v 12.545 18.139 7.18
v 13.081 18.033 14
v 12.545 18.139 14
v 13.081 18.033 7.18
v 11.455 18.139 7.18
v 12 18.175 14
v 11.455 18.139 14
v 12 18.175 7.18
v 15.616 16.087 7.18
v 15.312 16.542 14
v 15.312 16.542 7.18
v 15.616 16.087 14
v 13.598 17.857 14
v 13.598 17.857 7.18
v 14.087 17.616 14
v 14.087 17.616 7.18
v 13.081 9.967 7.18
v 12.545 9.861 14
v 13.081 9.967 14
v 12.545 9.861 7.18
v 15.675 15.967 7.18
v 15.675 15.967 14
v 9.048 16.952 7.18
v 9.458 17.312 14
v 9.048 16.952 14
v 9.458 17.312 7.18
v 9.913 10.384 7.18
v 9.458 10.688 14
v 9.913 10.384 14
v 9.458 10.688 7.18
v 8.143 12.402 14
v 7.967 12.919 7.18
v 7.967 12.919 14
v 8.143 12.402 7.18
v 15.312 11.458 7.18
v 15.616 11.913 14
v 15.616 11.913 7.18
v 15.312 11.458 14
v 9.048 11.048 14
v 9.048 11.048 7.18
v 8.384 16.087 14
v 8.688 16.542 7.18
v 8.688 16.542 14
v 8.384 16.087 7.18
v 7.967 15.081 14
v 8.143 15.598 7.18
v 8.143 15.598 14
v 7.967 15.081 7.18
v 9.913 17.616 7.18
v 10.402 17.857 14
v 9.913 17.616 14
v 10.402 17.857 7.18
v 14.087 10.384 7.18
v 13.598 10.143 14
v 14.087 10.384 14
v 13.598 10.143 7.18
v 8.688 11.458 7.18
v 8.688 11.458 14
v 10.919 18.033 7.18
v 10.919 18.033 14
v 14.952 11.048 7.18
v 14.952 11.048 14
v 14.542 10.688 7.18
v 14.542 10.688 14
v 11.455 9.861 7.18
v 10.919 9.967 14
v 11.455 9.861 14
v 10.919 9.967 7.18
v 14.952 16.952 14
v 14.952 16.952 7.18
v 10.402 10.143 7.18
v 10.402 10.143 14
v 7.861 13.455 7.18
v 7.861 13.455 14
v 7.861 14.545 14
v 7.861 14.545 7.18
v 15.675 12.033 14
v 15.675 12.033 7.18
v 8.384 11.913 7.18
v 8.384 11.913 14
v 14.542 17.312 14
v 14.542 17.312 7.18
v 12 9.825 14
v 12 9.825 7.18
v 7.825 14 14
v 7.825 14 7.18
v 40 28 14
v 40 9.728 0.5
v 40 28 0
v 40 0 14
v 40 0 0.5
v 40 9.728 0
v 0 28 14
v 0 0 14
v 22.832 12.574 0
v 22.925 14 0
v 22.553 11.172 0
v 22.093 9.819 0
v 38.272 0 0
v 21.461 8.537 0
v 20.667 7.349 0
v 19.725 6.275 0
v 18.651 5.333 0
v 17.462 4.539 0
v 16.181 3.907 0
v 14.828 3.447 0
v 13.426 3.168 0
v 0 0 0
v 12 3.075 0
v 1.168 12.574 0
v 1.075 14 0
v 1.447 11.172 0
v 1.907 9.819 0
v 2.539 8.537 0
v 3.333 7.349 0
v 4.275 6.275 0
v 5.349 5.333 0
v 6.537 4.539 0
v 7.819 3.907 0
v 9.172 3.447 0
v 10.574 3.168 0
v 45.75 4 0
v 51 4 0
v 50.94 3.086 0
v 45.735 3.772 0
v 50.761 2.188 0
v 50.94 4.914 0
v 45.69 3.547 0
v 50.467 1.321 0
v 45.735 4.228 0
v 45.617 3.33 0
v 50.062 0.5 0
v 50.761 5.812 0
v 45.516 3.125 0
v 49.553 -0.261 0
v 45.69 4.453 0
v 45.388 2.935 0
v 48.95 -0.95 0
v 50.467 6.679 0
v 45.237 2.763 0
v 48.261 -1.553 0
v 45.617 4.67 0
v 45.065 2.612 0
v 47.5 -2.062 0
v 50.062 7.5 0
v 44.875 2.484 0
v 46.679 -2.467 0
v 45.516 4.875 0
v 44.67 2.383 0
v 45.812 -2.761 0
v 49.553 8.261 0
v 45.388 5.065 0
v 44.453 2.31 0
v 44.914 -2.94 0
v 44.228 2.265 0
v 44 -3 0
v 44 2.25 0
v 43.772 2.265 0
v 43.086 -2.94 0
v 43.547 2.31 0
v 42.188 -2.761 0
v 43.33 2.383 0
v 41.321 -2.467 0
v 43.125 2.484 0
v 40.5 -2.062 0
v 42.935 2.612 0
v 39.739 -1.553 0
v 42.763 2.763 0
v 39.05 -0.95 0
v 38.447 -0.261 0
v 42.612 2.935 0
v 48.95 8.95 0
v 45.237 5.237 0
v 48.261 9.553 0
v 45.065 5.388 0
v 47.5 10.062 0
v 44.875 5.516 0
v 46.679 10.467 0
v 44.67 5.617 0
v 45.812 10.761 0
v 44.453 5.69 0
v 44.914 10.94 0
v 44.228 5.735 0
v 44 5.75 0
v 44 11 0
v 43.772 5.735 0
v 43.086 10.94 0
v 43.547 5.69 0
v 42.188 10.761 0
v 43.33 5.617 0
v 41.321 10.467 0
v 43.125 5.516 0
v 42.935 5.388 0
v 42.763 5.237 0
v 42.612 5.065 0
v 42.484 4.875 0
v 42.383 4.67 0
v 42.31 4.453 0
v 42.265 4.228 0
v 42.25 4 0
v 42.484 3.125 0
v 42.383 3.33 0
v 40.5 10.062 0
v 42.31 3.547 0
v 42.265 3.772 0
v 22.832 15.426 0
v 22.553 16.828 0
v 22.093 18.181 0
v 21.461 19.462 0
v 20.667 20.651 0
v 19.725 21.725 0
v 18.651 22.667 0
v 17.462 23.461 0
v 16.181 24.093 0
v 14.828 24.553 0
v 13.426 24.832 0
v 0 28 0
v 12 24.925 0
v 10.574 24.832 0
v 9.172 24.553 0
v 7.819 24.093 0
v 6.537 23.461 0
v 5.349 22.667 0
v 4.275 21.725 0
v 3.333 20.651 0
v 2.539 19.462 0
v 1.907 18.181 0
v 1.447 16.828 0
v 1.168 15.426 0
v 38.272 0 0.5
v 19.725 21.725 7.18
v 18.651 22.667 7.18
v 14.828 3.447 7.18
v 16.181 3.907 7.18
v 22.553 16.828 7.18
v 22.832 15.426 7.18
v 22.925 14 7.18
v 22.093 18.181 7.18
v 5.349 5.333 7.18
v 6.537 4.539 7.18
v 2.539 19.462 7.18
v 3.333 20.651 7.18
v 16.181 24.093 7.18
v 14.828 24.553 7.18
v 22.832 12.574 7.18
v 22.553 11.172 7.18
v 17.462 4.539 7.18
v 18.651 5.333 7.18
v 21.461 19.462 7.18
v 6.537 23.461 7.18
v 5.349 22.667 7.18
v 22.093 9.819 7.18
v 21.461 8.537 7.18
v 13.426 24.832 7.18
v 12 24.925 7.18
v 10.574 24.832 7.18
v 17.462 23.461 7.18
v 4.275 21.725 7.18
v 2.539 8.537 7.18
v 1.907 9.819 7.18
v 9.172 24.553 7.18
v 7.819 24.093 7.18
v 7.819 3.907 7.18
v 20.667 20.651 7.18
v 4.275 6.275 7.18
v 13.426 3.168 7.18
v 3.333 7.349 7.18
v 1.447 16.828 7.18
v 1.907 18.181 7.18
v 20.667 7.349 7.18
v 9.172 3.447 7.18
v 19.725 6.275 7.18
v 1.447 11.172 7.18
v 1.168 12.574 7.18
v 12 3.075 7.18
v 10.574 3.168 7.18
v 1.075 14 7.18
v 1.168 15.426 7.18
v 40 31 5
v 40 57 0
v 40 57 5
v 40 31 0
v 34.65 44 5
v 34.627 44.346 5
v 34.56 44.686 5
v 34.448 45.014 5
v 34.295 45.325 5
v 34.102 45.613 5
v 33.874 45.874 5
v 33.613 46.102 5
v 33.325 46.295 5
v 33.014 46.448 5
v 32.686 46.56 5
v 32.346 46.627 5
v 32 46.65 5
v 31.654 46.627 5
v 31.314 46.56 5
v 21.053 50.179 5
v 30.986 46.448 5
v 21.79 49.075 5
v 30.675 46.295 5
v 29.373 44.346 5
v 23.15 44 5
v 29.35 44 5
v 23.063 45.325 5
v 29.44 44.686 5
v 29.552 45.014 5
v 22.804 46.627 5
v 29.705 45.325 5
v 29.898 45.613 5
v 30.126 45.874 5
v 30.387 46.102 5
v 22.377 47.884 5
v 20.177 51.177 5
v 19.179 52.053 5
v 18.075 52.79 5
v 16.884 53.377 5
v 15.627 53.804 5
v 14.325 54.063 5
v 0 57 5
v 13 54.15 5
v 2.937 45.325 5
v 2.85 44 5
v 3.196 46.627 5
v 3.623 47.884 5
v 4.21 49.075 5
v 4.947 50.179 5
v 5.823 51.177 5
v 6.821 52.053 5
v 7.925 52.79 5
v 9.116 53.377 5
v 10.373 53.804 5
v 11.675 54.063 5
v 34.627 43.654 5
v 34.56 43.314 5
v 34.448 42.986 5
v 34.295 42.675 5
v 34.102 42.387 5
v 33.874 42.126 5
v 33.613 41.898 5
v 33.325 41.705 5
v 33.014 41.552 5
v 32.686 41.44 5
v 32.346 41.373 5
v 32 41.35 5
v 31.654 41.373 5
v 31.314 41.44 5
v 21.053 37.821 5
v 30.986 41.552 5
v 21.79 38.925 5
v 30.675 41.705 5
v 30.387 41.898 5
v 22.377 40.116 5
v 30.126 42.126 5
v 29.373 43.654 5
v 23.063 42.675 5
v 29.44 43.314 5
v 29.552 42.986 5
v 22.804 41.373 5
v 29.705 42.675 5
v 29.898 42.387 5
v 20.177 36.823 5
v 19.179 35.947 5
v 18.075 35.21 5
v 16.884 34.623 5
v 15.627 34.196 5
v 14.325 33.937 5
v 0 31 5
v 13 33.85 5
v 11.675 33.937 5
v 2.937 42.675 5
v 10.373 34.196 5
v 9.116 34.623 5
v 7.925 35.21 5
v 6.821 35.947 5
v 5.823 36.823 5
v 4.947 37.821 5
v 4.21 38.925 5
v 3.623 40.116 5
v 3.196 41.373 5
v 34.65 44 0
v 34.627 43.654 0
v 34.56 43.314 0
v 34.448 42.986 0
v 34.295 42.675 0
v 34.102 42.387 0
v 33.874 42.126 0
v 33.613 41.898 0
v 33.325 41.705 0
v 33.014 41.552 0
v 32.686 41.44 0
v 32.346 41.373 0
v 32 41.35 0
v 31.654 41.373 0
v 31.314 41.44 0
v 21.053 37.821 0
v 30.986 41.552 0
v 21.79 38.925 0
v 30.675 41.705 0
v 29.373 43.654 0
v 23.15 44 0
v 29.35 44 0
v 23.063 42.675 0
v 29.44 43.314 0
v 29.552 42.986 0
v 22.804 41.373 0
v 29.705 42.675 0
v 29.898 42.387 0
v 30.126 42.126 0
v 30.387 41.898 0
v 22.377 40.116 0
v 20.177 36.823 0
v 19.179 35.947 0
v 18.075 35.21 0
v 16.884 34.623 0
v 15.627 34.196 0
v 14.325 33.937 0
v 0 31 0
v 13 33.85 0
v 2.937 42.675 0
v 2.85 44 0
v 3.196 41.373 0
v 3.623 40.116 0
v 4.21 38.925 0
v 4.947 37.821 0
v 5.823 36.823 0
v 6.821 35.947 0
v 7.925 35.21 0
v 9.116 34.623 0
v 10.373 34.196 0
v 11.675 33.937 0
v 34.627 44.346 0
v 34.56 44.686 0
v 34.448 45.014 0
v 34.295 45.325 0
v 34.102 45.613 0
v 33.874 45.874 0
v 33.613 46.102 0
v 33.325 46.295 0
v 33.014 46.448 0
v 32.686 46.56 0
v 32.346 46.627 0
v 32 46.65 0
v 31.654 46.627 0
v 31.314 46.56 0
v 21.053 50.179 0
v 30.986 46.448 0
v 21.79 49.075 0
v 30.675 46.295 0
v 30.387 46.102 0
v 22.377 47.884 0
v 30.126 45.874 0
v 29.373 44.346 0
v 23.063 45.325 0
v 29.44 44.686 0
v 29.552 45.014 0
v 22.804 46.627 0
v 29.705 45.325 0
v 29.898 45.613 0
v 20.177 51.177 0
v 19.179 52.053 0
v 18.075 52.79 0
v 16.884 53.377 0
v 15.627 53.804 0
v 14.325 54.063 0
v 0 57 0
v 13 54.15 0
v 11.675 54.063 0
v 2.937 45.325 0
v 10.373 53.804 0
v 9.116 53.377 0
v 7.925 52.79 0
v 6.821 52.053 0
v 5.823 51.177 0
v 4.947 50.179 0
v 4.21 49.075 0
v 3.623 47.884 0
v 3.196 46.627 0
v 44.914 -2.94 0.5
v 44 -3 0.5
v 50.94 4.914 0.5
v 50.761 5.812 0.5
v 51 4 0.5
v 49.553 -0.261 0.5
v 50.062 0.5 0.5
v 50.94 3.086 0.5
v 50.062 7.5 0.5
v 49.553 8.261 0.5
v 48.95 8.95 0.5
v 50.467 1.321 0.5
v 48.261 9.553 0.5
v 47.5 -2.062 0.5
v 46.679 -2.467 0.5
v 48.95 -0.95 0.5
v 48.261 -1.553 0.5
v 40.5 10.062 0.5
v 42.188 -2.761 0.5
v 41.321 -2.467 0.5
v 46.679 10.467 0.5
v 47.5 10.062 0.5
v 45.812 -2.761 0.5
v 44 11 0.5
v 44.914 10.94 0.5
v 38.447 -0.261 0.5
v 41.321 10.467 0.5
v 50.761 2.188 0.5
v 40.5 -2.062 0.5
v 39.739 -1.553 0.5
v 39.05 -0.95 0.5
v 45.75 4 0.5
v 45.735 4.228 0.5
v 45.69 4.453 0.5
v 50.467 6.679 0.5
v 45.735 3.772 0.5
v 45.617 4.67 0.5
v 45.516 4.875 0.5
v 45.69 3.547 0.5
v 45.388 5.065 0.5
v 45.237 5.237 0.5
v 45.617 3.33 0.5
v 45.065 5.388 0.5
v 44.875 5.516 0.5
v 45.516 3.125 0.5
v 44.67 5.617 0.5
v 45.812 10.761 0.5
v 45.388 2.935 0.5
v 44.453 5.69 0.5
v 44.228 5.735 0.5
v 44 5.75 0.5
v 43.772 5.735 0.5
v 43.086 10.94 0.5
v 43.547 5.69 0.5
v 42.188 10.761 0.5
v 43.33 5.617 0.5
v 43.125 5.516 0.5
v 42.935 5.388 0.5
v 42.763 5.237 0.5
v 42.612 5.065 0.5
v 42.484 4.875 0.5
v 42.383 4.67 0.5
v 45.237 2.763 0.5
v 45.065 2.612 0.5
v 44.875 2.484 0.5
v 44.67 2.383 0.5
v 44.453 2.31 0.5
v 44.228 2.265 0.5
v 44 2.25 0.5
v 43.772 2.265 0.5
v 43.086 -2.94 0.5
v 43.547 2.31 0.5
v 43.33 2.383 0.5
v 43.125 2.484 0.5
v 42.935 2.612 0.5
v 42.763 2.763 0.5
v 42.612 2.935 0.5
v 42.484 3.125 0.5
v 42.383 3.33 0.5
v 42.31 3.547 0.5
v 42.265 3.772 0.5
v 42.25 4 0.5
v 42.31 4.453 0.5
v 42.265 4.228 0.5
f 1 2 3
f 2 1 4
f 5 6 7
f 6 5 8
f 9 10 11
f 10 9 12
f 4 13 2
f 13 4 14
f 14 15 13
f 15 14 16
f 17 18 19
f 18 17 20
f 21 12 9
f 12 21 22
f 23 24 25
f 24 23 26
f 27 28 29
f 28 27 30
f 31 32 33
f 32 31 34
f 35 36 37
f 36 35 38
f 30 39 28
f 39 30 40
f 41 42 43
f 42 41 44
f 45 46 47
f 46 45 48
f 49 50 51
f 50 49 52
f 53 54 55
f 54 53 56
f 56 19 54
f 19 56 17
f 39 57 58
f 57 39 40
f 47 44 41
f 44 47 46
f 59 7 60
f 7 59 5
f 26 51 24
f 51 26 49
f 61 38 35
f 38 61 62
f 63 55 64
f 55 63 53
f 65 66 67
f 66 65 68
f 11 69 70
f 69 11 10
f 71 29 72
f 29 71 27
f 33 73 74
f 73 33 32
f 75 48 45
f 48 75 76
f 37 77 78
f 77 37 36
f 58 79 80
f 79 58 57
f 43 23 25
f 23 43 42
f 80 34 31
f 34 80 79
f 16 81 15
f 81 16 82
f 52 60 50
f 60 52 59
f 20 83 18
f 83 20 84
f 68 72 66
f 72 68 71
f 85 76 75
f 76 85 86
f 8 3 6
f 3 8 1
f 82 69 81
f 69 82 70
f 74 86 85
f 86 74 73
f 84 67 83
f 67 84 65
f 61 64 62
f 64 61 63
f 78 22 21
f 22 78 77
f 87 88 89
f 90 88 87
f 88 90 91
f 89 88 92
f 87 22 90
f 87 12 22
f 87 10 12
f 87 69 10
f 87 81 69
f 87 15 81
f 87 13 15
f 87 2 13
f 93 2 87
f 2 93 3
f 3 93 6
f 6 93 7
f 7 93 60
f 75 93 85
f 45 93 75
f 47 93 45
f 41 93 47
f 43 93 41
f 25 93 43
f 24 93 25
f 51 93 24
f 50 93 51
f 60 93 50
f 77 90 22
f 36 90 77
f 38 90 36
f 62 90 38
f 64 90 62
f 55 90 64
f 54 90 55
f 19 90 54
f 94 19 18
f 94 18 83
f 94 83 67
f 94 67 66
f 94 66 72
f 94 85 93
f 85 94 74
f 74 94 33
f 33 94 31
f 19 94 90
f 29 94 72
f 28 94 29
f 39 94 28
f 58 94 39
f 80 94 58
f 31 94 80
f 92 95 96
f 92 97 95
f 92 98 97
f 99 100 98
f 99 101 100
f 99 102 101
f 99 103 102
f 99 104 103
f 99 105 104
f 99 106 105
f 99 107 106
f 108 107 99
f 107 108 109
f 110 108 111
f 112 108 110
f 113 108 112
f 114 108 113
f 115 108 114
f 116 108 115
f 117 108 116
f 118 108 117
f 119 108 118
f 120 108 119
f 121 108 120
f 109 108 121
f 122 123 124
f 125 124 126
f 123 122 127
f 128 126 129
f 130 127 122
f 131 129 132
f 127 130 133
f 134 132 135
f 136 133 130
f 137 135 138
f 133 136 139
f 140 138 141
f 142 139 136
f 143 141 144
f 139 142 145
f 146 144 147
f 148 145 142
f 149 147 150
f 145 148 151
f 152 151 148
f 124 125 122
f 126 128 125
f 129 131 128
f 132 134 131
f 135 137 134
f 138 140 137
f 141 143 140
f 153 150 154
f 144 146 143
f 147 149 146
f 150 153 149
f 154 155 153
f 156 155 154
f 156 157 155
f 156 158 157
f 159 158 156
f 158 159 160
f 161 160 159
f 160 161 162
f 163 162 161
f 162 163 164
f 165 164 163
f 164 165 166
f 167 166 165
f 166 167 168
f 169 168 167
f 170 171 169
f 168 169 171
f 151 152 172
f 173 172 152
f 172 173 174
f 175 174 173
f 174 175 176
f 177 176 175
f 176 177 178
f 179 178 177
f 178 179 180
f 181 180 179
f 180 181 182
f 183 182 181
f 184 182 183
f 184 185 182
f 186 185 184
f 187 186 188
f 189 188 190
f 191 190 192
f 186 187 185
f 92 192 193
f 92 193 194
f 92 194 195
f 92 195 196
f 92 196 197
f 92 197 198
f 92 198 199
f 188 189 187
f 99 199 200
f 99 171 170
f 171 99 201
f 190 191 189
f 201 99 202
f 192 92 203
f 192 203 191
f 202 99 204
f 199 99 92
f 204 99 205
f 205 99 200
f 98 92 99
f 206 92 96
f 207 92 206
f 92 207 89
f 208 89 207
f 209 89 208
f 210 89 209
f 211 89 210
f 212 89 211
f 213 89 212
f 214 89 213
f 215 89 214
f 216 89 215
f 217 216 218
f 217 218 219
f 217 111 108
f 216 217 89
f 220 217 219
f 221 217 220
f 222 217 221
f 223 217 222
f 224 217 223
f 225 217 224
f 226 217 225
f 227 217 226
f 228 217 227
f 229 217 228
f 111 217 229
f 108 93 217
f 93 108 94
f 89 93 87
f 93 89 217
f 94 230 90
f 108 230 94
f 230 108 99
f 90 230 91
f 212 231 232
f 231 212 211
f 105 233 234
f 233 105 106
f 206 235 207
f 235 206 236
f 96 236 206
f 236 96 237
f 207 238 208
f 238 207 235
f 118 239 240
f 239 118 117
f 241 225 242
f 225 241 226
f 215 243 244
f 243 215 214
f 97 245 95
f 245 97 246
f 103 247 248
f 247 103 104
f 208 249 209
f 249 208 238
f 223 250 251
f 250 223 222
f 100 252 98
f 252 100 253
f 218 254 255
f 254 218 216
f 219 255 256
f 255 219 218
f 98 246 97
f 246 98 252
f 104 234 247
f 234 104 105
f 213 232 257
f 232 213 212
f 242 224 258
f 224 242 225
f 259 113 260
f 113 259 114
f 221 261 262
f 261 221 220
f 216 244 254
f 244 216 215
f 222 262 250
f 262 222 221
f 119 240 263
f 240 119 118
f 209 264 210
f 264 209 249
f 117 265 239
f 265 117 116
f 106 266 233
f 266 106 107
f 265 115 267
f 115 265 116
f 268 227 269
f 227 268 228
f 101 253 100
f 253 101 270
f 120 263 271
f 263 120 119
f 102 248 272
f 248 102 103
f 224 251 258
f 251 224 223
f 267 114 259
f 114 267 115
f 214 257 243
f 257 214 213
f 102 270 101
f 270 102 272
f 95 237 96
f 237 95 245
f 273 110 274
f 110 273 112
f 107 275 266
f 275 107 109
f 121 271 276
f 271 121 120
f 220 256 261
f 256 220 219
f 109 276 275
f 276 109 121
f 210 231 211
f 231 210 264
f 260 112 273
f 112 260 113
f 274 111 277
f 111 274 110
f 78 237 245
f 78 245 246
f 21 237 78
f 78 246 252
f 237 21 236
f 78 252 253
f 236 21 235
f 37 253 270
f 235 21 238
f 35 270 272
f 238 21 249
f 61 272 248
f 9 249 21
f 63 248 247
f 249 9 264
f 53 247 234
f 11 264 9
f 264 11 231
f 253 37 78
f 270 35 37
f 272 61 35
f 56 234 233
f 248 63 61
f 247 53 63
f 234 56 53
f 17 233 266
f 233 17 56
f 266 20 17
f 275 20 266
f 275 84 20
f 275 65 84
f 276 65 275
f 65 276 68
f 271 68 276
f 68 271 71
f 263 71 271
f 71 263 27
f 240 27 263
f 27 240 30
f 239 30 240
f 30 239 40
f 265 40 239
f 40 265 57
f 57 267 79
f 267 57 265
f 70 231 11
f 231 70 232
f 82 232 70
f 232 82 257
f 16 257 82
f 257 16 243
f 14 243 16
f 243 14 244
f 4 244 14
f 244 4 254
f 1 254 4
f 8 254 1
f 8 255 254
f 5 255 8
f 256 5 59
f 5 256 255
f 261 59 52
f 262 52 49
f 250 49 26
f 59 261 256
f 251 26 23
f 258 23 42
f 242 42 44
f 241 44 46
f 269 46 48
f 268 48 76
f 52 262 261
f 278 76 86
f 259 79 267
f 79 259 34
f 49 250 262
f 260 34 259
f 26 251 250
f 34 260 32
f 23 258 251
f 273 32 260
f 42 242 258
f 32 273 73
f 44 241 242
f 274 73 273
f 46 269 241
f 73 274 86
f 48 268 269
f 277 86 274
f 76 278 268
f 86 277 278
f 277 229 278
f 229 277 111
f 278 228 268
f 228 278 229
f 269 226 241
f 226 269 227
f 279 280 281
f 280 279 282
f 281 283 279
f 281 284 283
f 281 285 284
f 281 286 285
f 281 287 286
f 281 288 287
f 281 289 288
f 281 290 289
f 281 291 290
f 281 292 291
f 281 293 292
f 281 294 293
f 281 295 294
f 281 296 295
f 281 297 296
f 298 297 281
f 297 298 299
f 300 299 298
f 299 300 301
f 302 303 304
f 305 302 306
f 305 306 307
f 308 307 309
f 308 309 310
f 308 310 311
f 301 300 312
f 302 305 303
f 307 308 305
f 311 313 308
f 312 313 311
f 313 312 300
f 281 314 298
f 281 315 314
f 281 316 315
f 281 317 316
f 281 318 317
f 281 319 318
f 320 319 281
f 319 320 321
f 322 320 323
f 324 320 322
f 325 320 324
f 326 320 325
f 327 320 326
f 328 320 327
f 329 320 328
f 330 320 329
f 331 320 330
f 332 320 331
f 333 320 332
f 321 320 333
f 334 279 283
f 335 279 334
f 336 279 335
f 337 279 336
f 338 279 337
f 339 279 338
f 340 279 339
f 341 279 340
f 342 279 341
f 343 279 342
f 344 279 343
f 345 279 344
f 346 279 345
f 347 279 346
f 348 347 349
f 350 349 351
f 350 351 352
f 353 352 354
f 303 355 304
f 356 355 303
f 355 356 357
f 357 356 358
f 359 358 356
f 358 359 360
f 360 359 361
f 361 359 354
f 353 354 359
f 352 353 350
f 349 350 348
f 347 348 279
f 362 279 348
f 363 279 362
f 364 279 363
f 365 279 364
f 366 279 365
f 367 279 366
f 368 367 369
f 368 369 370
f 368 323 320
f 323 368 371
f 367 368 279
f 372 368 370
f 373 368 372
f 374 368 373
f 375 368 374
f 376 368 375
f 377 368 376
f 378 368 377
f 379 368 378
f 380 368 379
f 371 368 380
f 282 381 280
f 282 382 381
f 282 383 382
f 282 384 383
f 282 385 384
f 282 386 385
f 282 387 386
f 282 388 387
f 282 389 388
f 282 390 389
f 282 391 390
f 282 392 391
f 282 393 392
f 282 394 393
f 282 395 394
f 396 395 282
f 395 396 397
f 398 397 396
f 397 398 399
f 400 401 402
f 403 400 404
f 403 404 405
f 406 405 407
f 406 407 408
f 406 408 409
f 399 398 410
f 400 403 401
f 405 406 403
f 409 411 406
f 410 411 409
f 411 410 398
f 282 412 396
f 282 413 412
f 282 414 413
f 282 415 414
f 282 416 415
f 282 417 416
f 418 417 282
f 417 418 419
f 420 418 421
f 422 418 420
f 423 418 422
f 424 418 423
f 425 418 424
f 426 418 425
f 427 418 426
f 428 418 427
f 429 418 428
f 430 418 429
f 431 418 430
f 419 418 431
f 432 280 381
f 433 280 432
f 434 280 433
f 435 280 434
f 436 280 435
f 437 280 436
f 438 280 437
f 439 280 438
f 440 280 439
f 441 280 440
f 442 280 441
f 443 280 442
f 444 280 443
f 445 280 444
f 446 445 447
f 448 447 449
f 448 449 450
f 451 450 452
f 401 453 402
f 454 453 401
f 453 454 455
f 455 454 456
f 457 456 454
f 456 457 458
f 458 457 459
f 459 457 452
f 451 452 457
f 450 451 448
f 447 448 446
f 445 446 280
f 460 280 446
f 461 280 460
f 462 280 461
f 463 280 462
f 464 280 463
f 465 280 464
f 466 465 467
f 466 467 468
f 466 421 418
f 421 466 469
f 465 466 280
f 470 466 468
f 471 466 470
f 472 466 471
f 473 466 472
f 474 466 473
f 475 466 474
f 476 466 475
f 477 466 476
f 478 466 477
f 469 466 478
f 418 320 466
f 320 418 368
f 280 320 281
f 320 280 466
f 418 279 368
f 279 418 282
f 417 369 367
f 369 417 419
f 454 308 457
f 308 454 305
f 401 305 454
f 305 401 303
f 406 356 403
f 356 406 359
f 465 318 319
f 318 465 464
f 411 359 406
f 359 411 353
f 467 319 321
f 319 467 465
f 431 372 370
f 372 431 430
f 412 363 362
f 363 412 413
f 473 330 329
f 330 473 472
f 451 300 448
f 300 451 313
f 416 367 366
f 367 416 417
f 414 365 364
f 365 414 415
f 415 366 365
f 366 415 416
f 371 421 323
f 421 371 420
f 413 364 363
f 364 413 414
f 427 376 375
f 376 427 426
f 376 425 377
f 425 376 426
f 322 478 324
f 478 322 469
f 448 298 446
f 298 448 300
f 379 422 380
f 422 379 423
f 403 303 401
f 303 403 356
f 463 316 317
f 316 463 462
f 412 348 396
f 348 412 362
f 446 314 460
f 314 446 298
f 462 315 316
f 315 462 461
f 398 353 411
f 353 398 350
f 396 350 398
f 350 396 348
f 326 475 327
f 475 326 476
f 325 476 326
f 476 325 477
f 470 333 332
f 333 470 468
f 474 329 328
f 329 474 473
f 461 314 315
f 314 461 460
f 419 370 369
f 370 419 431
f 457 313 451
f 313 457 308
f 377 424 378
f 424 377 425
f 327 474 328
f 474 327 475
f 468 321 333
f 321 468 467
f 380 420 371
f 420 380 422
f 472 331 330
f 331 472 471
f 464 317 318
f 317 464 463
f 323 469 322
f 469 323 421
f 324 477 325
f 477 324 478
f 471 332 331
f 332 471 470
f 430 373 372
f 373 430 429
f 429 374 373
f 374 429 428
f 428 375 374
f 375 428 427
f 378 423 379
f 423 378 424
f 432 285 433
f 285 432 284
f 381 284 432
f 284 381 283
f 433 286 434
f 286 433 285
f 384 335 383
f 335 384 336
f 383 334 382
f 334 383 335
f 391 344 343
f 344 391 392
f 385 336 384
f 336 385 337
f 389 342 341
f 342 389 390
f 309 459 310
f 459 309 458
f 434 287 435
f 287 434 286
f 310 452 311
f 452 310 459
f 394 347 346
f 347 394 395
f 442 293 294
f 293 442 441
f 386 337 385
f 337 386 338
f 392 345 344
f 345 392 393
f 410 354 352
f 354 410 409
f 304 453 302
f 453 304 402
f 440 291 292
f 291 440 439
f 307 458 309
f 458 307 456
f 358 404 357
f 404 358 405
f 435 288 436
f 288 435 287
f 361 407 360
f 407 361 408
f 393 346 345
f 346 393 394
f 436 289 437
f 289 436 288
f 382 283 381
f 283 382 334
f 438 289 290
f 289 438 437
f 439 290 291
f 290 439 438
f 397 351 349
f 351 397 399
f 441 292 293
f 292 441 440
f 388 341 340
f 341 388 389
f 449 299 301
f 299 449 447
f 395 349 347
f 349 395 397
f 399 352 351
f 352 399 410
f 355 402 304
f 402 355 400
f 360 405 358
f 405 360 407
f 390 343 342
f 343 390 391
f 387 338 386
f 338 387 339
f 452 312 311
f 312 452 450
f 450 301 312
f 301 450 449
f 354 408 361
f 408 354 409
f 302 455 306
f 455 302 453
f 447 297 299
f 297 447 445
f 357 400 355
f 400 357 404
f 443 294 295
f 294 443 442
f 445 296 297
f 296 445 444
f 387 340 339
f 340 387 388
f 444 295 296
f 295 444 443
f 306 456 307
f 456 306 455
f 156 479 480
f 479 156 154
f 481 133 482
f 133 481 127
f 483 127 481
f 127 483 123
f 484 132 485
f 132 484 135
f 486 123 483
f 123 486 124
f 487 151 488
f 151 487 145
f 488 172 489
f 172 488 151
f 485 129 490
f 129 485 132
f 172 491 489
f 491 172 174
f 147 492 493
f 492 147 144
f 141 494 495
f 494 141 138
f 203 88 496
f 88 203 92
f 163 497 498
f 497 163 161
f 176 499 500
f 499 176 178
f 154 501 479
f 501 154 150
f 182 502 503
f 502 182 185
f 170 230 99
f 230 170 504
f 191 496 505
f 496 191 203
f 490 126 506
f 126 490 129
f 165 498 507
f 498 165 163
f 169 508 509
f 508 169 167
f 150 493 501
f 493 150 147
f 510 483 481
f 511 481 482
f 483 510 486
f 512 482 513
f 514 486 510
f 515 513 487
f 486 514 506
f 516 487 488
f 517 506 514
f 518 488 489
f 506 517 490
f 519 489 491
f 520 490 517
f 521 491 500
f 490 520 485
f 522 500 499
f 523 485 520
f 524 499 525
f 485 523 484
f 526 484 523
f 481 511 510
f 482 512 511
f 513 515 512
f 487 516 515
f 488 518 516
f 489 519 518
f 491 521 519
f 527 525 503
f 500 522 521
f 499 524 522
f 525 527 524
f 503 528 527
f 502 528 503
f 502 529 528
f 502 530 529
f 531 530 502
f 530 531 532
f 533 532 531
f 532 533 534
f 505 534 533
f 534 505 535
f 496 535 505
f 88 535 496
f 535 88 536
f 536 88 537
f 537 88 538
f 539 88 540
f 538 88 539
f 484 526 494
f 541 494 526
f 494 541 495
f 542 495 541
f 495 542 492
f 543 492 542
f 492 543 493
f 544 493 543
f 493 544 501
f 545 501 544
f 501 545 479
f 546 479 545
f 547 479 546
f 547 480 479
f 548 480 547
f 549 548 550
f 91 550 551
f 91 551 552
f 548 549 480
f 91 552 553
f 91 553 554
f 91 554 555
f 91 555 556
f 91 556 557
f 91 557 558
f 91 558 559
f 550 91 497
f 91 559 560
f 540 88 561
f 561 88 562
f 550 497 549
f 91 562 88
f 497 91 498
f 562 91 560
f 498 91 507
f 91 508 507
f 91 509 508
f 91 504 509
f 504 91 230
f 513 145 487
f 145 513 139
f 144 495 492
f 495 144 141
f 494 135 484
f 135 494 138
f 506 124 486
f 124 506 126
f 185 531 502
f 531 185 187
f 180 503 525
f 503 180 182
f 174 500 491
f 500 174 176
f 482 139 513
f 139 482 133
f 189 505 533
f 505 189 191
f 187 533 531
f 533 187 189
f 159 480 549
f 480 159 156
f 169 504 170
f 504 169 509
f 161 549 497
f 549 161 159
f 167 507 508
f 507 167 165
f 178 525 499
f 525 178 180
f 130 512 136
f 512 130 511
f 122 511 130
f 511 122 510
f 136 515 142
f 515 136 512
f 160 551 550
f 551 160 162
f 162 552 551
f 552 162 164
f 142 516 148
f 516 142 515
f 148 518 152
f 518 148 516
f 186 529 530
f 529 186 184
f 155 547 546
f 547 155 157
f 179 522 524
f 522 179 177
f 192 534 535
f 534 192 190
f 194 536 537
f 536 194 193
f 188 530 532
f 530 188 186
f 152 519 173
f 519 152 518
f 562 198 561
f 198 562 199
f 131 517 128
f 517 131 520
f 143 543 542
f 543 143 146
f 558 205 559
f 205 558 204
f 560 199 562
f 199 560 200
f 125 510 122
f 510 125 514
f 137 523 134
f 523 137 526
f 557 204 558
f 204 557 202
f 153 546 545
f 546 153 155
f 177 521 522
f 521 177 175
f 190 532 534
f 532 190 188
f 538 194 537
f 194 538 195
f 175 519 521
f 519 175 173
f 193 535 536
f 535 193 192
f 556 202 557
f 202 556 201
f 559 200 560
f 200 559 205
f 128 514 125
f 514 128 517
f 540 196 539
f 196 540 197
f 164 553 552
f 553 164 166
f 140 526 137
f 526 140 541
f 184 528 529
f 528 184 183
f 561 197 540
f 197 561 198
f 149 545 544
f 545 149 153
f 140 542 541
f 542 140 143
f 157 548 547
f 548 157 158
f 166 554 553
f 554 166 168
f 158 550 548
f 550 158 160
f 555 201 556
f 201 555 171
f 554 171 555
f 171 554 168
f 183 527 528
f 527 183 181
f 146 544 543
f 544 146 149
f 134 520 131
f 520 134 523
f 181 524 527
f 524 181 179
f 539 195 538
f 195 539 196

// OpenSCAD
// file: parameters.scad
// =============================================================================
// Gen-CC — nightly 2026-10-13 (physics_scorer, honest magpylib watts)
// Stator-only upgrade for an existing Gen-BX: the R71 rotors and Ø168 steel stay as they are; a new annular 12-bobbin stator with 6.3 mm copper (magnet gap 9.35 → 8.90 mm) and longer r52–90 bobbins (the open-centre stator now packs one size up) replaces the old one, together with a shorter gap sleeve, frame rods moved out to R93.5 and new bearing bridges. No new magnets or steel.
// Clocking 0 deg (magnets N facing S) + D-flat keyed bore + index notch + flip-symmetric hole map.
// Windable 2-piece bobbin; turns = physics_scorer turns_fit; copper only between flanges.
// Steel back-iron: 2× Ø168 × 4.76 mm (3/16") mild-steel discs (steel_backiron_disc.dxf); magnets sit ON the steel
// (through-pockets) -> score with --back-iron. Night 2026-10-13.
// =============================================================================
topology            = "dual_rotor";

// --- Wire / winding (physics_scorer winding-fit) -------------------------------
wire_awg            = 26;
wire_od             = 0.45;     // insulated OD mm (bare 0.405)
fill_realistic      = 0.65;     // insulated-wire area / window (DENSE layered wind with a jig; scorer cap 0.65)
turns               = 391;       // = physics_scorer turns_fit (do NOT raise)
coil_former_type    = "bobbin";
coil_core_inset     = 15.20;     // radial copper build: hub = copper boundary inset by this
wind_build_axial    = 0.0;      // nothing proud of the flanges
wind_build_radial   = 0.0;

// --- Bobbin (base + lid) ---------------------------------------------------------
coil_id_r           = 52.00;    // copper boundary sector
coil_od_r           = 90.00;
span_deg            = 26.36;    // = pitch - 2*asin((wall+0.85)/coil_id_r) -> >=1.2 mm stator web
former_web          = 6.30;     // copper height between flanges (TALL copper: steel keeps Bz up)
flange_t            = 0.80;     // >= 0.8 mm FDM wall rule (tall winds push on the flanges)
wall                = 0.80;     // flange lip beyond copper
former_bare_h       = former_web + 2 * flange_t;
coil_envelope_h     = former_bare_h + 2 * wind_build_axial;
tab_w               = 7.0;
tab_len             = 7.0;
tab_h               = former_bare_h / 2;
pin_d               = 1.9;      // 1.75 mm filament locating pin
coil_mount_r        = coil_od_r + 0.2 + 4.0;
lead_y              = 1.6;
lead_slot_w         = 0.9;
lead_groove_d       = 0.6;

// --- Gap -------------------------------------------------------------------------
run_clear           = 0.50;     // rotor face -> flange
gap_spacer_h        = run_clear + wind_build_axial;
m2m                 = coil_envelope_h + 2 * run_clear;   // rotor face to rotor face (= gap_sleeve length)

// --- Stator ----------------------------------------------------------------------
coil_stations       = 12;
bay_clear           = 0.25;
stator_thick        = former_bare_h;                        // bobbins flush both faces
stator_od           = 198;
shaft_clear_stator  = 14.0;     // stator is static; gap sleeve OD 12 spins inside
stator_ir           = 46.95;    // ANNULAR stator: open centre (nested one-plate pack); inner rim 4.0 mm

// --- Rotor(s) --------------------------------------------------------------------
magnet_Br           = 1.43;     // N52
magnet_d_large      = 20.0;
magnet_h_large      = 5.0;      // one O20x5 per pocket
magnet_h_small      = 5.0;      // unused: no O5 pockets in this kit
halbach_magnetisation = "none";  // NO O5 assist magnets in this kit (scan: they lower the 4-pole score)
rotor_b_same_axis   = true;     // same-index magnets share one axis: N faces S across the gap
large_pocket_d      = 20.3;
small_pocket_d      = 5.3;
pocket_h            = 5.00;     // THROUGH the carrier: magnet back face sits on the steel disc (FLUSH seat: carrier = magnet height, magnet face level with the rotor face)
large_n             = 8;
R_large             = 71.0;
small_r_list        = [];       // no O5 pockets
carrier_od          = 168.0;
carrier_thick       = pocket_h;
hub_h               = 12.0;     // > steel_t + insert: radial set-screw clears the steel
hub_od              = 24.0;     // slim hub so the M4 brace rods fit at R~18 inside the coil ring
hub_insert_d        = 4.0;      // M3 heat-set insert, radial, bears on the D-flat
rotor_b_offset_deg  = 0.0;      // CLOCKING: magnets directly opposite
shaft_key           = "dflat";
dflat_depth         = 0.5;      // 8 mm shaft with 0.5 mm flat (7.5 across flat)
index_notch_d       = 3.0;

// --- Steel back-iron (buyable laser-cut) -------------------------------------------
steel_t             = 4.76;      // mild steel thickness (image method ignores it; sized from steel_flux.py so the return path stays well below saturation)
steel_center_hole   = 26.0;     // slips over the rotor hub (OD 24)
steel_od            = carrier_od;   // steel disc OD = rotor carrier OD

// --- Modular MAX interface ----------------------------------------------------------
shaft_bore          = 8.35;
dflat_x             = 4.0 - dflat_depth + (shaft_bore - 8.0) / 2;
bearing_d           = 21.85;
bearing_h           = 7.2;
m3_clear            = 3.5;
bolt_r_inner        = 30.0;     // M3 steel-disc clamp bolts (inside the magnet ring)
bolt_n_inner        = 4;
bolt_inner_angles   = [0, 90, 180, 270];
bolt_r_outer        = 44.0;     // second M3 steel-disc clamp ring
bolt_outer_angles   = [67.5, 112.5, 247.5, 292.5];
flange_bolt_r       = 93.5;     // frame rods: OUTSIDE the rotor OD (rotors spin inside them)
flange_bolt_n       = 4;
flange_bolt_offset  = 45.00;    // between coil stations -> never cuts a lead groove/tab
brace_r             = 18.0;
brace_d             = 4.3;      // temporary M4 jack rods (assembly only)
brace_n             = 4;
brace_angles        = [45, 135, 225, 315];          // flip-symmetric

spacer_pad_od       = 14.0;
spacer_pad_id       = m3_clear;
endbell_od          = 197.0;
endbell_thick       = 8.0;
endbell_shaft_clear = 10.0;
collar_h            = 10.0;
standoff_od         = 9.0;
frame_standoff_h    = run_clear + carrier_thick + hub_h + collar_h + 2.0;
sleeve_od           = 12.0;
plate_max_mm        = 410;

$fn = 64;
// main file
// Gen-CC — fit coupon: O20/O5 THROUGH pockets at carrier thickness (test on a steel offcut), 608 seat,
// D-flat bore, gap shim, and one bobbin-bay slice (bobbin footprint + bay_clear) to test former fit.
include <parameters.scad>;
$fn = 48;
// D-flat keyed bore: flat faces +X (angle 0 = magnet pocket 0 = index notch)
module dflat_bore(h) {
    intersection() {
        cylinder(d=shaft_bore, h=h);
        translate([-shaft_bore, -shaft_bore, 0]) cube([shaft_bore + dflat_x, 2*shaft_bore, h]);
    }
}
module sector_2d(r_in, r_out, ang) {
    polygon([
        for (a = [-ang/2 : ang/24 : ang/2]) [r_in*cos(a), r_in*sin(a)],
        for (a = [ang/2 : -ang/24 : -ang/2]) [r_out*cos(a), r_out*sin(a)]
    ]);
}
module footprint_2d() { offset(r=wall) sector_2d(coil_id_r, coil_od_r, span_deg); }
module hub_2d()       { offset(delta=-coil_core_inset) sector_2d(coil_id_r, coil_od_r, span_deg); }

block_w = 40; block_d = 28; block_h = 14;
difference() {
    cube([block_w, block_d, block_h]);
    translate([12, block_d/2, -0.02]) cylinder(d=bearing_d, h=bearing_h);
    translate([12, block_d/2, -0.1]) dflat_bore(block_h + 1);
}
translate([0, block_d + 3, 0]) difference() {
    cube([40, 26, carrier_thick]);
    translate([13, 13, -0.1]) cylinder(d=large_pocket_d, h=carrier_thick + 0.2);
    translate([32, 13, -0.1]) cylinder(d=small_pocket_d, h=carrier_thick + 0.2);
}
translate([block_w + 4, 4, 0])
    difference() {
        cylinder(d=spacer_pad_od, h=gap_spacer_h);
        translate([0, 0, -0.1]) cylinder(d=spacer_pad_id, h=gap_spacer_h + 0.2);
    }
